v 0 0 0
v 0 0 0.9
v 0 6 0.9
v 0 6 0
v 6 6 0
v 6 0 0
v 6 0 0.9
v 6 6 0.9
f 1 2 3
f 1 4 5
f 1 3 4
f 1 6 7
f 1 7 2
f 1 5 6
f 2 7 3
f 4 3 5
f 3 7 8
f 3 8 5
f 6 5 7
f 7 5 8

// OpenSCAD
/* Warning, this is a very basic generator with a lot of approximation 
input data : [VQFN, LTX, 6x6x0.9mm, 40, , A, C04-00505A]
generated by com.zoubworld.electronics.cad.model3d.Basic
Date : Sun Feb 15 10:50:48 CET 2026
*/

//body
color("black")
translate([0,0,0])
cube([6.0,6.0,0.9], center=false);
